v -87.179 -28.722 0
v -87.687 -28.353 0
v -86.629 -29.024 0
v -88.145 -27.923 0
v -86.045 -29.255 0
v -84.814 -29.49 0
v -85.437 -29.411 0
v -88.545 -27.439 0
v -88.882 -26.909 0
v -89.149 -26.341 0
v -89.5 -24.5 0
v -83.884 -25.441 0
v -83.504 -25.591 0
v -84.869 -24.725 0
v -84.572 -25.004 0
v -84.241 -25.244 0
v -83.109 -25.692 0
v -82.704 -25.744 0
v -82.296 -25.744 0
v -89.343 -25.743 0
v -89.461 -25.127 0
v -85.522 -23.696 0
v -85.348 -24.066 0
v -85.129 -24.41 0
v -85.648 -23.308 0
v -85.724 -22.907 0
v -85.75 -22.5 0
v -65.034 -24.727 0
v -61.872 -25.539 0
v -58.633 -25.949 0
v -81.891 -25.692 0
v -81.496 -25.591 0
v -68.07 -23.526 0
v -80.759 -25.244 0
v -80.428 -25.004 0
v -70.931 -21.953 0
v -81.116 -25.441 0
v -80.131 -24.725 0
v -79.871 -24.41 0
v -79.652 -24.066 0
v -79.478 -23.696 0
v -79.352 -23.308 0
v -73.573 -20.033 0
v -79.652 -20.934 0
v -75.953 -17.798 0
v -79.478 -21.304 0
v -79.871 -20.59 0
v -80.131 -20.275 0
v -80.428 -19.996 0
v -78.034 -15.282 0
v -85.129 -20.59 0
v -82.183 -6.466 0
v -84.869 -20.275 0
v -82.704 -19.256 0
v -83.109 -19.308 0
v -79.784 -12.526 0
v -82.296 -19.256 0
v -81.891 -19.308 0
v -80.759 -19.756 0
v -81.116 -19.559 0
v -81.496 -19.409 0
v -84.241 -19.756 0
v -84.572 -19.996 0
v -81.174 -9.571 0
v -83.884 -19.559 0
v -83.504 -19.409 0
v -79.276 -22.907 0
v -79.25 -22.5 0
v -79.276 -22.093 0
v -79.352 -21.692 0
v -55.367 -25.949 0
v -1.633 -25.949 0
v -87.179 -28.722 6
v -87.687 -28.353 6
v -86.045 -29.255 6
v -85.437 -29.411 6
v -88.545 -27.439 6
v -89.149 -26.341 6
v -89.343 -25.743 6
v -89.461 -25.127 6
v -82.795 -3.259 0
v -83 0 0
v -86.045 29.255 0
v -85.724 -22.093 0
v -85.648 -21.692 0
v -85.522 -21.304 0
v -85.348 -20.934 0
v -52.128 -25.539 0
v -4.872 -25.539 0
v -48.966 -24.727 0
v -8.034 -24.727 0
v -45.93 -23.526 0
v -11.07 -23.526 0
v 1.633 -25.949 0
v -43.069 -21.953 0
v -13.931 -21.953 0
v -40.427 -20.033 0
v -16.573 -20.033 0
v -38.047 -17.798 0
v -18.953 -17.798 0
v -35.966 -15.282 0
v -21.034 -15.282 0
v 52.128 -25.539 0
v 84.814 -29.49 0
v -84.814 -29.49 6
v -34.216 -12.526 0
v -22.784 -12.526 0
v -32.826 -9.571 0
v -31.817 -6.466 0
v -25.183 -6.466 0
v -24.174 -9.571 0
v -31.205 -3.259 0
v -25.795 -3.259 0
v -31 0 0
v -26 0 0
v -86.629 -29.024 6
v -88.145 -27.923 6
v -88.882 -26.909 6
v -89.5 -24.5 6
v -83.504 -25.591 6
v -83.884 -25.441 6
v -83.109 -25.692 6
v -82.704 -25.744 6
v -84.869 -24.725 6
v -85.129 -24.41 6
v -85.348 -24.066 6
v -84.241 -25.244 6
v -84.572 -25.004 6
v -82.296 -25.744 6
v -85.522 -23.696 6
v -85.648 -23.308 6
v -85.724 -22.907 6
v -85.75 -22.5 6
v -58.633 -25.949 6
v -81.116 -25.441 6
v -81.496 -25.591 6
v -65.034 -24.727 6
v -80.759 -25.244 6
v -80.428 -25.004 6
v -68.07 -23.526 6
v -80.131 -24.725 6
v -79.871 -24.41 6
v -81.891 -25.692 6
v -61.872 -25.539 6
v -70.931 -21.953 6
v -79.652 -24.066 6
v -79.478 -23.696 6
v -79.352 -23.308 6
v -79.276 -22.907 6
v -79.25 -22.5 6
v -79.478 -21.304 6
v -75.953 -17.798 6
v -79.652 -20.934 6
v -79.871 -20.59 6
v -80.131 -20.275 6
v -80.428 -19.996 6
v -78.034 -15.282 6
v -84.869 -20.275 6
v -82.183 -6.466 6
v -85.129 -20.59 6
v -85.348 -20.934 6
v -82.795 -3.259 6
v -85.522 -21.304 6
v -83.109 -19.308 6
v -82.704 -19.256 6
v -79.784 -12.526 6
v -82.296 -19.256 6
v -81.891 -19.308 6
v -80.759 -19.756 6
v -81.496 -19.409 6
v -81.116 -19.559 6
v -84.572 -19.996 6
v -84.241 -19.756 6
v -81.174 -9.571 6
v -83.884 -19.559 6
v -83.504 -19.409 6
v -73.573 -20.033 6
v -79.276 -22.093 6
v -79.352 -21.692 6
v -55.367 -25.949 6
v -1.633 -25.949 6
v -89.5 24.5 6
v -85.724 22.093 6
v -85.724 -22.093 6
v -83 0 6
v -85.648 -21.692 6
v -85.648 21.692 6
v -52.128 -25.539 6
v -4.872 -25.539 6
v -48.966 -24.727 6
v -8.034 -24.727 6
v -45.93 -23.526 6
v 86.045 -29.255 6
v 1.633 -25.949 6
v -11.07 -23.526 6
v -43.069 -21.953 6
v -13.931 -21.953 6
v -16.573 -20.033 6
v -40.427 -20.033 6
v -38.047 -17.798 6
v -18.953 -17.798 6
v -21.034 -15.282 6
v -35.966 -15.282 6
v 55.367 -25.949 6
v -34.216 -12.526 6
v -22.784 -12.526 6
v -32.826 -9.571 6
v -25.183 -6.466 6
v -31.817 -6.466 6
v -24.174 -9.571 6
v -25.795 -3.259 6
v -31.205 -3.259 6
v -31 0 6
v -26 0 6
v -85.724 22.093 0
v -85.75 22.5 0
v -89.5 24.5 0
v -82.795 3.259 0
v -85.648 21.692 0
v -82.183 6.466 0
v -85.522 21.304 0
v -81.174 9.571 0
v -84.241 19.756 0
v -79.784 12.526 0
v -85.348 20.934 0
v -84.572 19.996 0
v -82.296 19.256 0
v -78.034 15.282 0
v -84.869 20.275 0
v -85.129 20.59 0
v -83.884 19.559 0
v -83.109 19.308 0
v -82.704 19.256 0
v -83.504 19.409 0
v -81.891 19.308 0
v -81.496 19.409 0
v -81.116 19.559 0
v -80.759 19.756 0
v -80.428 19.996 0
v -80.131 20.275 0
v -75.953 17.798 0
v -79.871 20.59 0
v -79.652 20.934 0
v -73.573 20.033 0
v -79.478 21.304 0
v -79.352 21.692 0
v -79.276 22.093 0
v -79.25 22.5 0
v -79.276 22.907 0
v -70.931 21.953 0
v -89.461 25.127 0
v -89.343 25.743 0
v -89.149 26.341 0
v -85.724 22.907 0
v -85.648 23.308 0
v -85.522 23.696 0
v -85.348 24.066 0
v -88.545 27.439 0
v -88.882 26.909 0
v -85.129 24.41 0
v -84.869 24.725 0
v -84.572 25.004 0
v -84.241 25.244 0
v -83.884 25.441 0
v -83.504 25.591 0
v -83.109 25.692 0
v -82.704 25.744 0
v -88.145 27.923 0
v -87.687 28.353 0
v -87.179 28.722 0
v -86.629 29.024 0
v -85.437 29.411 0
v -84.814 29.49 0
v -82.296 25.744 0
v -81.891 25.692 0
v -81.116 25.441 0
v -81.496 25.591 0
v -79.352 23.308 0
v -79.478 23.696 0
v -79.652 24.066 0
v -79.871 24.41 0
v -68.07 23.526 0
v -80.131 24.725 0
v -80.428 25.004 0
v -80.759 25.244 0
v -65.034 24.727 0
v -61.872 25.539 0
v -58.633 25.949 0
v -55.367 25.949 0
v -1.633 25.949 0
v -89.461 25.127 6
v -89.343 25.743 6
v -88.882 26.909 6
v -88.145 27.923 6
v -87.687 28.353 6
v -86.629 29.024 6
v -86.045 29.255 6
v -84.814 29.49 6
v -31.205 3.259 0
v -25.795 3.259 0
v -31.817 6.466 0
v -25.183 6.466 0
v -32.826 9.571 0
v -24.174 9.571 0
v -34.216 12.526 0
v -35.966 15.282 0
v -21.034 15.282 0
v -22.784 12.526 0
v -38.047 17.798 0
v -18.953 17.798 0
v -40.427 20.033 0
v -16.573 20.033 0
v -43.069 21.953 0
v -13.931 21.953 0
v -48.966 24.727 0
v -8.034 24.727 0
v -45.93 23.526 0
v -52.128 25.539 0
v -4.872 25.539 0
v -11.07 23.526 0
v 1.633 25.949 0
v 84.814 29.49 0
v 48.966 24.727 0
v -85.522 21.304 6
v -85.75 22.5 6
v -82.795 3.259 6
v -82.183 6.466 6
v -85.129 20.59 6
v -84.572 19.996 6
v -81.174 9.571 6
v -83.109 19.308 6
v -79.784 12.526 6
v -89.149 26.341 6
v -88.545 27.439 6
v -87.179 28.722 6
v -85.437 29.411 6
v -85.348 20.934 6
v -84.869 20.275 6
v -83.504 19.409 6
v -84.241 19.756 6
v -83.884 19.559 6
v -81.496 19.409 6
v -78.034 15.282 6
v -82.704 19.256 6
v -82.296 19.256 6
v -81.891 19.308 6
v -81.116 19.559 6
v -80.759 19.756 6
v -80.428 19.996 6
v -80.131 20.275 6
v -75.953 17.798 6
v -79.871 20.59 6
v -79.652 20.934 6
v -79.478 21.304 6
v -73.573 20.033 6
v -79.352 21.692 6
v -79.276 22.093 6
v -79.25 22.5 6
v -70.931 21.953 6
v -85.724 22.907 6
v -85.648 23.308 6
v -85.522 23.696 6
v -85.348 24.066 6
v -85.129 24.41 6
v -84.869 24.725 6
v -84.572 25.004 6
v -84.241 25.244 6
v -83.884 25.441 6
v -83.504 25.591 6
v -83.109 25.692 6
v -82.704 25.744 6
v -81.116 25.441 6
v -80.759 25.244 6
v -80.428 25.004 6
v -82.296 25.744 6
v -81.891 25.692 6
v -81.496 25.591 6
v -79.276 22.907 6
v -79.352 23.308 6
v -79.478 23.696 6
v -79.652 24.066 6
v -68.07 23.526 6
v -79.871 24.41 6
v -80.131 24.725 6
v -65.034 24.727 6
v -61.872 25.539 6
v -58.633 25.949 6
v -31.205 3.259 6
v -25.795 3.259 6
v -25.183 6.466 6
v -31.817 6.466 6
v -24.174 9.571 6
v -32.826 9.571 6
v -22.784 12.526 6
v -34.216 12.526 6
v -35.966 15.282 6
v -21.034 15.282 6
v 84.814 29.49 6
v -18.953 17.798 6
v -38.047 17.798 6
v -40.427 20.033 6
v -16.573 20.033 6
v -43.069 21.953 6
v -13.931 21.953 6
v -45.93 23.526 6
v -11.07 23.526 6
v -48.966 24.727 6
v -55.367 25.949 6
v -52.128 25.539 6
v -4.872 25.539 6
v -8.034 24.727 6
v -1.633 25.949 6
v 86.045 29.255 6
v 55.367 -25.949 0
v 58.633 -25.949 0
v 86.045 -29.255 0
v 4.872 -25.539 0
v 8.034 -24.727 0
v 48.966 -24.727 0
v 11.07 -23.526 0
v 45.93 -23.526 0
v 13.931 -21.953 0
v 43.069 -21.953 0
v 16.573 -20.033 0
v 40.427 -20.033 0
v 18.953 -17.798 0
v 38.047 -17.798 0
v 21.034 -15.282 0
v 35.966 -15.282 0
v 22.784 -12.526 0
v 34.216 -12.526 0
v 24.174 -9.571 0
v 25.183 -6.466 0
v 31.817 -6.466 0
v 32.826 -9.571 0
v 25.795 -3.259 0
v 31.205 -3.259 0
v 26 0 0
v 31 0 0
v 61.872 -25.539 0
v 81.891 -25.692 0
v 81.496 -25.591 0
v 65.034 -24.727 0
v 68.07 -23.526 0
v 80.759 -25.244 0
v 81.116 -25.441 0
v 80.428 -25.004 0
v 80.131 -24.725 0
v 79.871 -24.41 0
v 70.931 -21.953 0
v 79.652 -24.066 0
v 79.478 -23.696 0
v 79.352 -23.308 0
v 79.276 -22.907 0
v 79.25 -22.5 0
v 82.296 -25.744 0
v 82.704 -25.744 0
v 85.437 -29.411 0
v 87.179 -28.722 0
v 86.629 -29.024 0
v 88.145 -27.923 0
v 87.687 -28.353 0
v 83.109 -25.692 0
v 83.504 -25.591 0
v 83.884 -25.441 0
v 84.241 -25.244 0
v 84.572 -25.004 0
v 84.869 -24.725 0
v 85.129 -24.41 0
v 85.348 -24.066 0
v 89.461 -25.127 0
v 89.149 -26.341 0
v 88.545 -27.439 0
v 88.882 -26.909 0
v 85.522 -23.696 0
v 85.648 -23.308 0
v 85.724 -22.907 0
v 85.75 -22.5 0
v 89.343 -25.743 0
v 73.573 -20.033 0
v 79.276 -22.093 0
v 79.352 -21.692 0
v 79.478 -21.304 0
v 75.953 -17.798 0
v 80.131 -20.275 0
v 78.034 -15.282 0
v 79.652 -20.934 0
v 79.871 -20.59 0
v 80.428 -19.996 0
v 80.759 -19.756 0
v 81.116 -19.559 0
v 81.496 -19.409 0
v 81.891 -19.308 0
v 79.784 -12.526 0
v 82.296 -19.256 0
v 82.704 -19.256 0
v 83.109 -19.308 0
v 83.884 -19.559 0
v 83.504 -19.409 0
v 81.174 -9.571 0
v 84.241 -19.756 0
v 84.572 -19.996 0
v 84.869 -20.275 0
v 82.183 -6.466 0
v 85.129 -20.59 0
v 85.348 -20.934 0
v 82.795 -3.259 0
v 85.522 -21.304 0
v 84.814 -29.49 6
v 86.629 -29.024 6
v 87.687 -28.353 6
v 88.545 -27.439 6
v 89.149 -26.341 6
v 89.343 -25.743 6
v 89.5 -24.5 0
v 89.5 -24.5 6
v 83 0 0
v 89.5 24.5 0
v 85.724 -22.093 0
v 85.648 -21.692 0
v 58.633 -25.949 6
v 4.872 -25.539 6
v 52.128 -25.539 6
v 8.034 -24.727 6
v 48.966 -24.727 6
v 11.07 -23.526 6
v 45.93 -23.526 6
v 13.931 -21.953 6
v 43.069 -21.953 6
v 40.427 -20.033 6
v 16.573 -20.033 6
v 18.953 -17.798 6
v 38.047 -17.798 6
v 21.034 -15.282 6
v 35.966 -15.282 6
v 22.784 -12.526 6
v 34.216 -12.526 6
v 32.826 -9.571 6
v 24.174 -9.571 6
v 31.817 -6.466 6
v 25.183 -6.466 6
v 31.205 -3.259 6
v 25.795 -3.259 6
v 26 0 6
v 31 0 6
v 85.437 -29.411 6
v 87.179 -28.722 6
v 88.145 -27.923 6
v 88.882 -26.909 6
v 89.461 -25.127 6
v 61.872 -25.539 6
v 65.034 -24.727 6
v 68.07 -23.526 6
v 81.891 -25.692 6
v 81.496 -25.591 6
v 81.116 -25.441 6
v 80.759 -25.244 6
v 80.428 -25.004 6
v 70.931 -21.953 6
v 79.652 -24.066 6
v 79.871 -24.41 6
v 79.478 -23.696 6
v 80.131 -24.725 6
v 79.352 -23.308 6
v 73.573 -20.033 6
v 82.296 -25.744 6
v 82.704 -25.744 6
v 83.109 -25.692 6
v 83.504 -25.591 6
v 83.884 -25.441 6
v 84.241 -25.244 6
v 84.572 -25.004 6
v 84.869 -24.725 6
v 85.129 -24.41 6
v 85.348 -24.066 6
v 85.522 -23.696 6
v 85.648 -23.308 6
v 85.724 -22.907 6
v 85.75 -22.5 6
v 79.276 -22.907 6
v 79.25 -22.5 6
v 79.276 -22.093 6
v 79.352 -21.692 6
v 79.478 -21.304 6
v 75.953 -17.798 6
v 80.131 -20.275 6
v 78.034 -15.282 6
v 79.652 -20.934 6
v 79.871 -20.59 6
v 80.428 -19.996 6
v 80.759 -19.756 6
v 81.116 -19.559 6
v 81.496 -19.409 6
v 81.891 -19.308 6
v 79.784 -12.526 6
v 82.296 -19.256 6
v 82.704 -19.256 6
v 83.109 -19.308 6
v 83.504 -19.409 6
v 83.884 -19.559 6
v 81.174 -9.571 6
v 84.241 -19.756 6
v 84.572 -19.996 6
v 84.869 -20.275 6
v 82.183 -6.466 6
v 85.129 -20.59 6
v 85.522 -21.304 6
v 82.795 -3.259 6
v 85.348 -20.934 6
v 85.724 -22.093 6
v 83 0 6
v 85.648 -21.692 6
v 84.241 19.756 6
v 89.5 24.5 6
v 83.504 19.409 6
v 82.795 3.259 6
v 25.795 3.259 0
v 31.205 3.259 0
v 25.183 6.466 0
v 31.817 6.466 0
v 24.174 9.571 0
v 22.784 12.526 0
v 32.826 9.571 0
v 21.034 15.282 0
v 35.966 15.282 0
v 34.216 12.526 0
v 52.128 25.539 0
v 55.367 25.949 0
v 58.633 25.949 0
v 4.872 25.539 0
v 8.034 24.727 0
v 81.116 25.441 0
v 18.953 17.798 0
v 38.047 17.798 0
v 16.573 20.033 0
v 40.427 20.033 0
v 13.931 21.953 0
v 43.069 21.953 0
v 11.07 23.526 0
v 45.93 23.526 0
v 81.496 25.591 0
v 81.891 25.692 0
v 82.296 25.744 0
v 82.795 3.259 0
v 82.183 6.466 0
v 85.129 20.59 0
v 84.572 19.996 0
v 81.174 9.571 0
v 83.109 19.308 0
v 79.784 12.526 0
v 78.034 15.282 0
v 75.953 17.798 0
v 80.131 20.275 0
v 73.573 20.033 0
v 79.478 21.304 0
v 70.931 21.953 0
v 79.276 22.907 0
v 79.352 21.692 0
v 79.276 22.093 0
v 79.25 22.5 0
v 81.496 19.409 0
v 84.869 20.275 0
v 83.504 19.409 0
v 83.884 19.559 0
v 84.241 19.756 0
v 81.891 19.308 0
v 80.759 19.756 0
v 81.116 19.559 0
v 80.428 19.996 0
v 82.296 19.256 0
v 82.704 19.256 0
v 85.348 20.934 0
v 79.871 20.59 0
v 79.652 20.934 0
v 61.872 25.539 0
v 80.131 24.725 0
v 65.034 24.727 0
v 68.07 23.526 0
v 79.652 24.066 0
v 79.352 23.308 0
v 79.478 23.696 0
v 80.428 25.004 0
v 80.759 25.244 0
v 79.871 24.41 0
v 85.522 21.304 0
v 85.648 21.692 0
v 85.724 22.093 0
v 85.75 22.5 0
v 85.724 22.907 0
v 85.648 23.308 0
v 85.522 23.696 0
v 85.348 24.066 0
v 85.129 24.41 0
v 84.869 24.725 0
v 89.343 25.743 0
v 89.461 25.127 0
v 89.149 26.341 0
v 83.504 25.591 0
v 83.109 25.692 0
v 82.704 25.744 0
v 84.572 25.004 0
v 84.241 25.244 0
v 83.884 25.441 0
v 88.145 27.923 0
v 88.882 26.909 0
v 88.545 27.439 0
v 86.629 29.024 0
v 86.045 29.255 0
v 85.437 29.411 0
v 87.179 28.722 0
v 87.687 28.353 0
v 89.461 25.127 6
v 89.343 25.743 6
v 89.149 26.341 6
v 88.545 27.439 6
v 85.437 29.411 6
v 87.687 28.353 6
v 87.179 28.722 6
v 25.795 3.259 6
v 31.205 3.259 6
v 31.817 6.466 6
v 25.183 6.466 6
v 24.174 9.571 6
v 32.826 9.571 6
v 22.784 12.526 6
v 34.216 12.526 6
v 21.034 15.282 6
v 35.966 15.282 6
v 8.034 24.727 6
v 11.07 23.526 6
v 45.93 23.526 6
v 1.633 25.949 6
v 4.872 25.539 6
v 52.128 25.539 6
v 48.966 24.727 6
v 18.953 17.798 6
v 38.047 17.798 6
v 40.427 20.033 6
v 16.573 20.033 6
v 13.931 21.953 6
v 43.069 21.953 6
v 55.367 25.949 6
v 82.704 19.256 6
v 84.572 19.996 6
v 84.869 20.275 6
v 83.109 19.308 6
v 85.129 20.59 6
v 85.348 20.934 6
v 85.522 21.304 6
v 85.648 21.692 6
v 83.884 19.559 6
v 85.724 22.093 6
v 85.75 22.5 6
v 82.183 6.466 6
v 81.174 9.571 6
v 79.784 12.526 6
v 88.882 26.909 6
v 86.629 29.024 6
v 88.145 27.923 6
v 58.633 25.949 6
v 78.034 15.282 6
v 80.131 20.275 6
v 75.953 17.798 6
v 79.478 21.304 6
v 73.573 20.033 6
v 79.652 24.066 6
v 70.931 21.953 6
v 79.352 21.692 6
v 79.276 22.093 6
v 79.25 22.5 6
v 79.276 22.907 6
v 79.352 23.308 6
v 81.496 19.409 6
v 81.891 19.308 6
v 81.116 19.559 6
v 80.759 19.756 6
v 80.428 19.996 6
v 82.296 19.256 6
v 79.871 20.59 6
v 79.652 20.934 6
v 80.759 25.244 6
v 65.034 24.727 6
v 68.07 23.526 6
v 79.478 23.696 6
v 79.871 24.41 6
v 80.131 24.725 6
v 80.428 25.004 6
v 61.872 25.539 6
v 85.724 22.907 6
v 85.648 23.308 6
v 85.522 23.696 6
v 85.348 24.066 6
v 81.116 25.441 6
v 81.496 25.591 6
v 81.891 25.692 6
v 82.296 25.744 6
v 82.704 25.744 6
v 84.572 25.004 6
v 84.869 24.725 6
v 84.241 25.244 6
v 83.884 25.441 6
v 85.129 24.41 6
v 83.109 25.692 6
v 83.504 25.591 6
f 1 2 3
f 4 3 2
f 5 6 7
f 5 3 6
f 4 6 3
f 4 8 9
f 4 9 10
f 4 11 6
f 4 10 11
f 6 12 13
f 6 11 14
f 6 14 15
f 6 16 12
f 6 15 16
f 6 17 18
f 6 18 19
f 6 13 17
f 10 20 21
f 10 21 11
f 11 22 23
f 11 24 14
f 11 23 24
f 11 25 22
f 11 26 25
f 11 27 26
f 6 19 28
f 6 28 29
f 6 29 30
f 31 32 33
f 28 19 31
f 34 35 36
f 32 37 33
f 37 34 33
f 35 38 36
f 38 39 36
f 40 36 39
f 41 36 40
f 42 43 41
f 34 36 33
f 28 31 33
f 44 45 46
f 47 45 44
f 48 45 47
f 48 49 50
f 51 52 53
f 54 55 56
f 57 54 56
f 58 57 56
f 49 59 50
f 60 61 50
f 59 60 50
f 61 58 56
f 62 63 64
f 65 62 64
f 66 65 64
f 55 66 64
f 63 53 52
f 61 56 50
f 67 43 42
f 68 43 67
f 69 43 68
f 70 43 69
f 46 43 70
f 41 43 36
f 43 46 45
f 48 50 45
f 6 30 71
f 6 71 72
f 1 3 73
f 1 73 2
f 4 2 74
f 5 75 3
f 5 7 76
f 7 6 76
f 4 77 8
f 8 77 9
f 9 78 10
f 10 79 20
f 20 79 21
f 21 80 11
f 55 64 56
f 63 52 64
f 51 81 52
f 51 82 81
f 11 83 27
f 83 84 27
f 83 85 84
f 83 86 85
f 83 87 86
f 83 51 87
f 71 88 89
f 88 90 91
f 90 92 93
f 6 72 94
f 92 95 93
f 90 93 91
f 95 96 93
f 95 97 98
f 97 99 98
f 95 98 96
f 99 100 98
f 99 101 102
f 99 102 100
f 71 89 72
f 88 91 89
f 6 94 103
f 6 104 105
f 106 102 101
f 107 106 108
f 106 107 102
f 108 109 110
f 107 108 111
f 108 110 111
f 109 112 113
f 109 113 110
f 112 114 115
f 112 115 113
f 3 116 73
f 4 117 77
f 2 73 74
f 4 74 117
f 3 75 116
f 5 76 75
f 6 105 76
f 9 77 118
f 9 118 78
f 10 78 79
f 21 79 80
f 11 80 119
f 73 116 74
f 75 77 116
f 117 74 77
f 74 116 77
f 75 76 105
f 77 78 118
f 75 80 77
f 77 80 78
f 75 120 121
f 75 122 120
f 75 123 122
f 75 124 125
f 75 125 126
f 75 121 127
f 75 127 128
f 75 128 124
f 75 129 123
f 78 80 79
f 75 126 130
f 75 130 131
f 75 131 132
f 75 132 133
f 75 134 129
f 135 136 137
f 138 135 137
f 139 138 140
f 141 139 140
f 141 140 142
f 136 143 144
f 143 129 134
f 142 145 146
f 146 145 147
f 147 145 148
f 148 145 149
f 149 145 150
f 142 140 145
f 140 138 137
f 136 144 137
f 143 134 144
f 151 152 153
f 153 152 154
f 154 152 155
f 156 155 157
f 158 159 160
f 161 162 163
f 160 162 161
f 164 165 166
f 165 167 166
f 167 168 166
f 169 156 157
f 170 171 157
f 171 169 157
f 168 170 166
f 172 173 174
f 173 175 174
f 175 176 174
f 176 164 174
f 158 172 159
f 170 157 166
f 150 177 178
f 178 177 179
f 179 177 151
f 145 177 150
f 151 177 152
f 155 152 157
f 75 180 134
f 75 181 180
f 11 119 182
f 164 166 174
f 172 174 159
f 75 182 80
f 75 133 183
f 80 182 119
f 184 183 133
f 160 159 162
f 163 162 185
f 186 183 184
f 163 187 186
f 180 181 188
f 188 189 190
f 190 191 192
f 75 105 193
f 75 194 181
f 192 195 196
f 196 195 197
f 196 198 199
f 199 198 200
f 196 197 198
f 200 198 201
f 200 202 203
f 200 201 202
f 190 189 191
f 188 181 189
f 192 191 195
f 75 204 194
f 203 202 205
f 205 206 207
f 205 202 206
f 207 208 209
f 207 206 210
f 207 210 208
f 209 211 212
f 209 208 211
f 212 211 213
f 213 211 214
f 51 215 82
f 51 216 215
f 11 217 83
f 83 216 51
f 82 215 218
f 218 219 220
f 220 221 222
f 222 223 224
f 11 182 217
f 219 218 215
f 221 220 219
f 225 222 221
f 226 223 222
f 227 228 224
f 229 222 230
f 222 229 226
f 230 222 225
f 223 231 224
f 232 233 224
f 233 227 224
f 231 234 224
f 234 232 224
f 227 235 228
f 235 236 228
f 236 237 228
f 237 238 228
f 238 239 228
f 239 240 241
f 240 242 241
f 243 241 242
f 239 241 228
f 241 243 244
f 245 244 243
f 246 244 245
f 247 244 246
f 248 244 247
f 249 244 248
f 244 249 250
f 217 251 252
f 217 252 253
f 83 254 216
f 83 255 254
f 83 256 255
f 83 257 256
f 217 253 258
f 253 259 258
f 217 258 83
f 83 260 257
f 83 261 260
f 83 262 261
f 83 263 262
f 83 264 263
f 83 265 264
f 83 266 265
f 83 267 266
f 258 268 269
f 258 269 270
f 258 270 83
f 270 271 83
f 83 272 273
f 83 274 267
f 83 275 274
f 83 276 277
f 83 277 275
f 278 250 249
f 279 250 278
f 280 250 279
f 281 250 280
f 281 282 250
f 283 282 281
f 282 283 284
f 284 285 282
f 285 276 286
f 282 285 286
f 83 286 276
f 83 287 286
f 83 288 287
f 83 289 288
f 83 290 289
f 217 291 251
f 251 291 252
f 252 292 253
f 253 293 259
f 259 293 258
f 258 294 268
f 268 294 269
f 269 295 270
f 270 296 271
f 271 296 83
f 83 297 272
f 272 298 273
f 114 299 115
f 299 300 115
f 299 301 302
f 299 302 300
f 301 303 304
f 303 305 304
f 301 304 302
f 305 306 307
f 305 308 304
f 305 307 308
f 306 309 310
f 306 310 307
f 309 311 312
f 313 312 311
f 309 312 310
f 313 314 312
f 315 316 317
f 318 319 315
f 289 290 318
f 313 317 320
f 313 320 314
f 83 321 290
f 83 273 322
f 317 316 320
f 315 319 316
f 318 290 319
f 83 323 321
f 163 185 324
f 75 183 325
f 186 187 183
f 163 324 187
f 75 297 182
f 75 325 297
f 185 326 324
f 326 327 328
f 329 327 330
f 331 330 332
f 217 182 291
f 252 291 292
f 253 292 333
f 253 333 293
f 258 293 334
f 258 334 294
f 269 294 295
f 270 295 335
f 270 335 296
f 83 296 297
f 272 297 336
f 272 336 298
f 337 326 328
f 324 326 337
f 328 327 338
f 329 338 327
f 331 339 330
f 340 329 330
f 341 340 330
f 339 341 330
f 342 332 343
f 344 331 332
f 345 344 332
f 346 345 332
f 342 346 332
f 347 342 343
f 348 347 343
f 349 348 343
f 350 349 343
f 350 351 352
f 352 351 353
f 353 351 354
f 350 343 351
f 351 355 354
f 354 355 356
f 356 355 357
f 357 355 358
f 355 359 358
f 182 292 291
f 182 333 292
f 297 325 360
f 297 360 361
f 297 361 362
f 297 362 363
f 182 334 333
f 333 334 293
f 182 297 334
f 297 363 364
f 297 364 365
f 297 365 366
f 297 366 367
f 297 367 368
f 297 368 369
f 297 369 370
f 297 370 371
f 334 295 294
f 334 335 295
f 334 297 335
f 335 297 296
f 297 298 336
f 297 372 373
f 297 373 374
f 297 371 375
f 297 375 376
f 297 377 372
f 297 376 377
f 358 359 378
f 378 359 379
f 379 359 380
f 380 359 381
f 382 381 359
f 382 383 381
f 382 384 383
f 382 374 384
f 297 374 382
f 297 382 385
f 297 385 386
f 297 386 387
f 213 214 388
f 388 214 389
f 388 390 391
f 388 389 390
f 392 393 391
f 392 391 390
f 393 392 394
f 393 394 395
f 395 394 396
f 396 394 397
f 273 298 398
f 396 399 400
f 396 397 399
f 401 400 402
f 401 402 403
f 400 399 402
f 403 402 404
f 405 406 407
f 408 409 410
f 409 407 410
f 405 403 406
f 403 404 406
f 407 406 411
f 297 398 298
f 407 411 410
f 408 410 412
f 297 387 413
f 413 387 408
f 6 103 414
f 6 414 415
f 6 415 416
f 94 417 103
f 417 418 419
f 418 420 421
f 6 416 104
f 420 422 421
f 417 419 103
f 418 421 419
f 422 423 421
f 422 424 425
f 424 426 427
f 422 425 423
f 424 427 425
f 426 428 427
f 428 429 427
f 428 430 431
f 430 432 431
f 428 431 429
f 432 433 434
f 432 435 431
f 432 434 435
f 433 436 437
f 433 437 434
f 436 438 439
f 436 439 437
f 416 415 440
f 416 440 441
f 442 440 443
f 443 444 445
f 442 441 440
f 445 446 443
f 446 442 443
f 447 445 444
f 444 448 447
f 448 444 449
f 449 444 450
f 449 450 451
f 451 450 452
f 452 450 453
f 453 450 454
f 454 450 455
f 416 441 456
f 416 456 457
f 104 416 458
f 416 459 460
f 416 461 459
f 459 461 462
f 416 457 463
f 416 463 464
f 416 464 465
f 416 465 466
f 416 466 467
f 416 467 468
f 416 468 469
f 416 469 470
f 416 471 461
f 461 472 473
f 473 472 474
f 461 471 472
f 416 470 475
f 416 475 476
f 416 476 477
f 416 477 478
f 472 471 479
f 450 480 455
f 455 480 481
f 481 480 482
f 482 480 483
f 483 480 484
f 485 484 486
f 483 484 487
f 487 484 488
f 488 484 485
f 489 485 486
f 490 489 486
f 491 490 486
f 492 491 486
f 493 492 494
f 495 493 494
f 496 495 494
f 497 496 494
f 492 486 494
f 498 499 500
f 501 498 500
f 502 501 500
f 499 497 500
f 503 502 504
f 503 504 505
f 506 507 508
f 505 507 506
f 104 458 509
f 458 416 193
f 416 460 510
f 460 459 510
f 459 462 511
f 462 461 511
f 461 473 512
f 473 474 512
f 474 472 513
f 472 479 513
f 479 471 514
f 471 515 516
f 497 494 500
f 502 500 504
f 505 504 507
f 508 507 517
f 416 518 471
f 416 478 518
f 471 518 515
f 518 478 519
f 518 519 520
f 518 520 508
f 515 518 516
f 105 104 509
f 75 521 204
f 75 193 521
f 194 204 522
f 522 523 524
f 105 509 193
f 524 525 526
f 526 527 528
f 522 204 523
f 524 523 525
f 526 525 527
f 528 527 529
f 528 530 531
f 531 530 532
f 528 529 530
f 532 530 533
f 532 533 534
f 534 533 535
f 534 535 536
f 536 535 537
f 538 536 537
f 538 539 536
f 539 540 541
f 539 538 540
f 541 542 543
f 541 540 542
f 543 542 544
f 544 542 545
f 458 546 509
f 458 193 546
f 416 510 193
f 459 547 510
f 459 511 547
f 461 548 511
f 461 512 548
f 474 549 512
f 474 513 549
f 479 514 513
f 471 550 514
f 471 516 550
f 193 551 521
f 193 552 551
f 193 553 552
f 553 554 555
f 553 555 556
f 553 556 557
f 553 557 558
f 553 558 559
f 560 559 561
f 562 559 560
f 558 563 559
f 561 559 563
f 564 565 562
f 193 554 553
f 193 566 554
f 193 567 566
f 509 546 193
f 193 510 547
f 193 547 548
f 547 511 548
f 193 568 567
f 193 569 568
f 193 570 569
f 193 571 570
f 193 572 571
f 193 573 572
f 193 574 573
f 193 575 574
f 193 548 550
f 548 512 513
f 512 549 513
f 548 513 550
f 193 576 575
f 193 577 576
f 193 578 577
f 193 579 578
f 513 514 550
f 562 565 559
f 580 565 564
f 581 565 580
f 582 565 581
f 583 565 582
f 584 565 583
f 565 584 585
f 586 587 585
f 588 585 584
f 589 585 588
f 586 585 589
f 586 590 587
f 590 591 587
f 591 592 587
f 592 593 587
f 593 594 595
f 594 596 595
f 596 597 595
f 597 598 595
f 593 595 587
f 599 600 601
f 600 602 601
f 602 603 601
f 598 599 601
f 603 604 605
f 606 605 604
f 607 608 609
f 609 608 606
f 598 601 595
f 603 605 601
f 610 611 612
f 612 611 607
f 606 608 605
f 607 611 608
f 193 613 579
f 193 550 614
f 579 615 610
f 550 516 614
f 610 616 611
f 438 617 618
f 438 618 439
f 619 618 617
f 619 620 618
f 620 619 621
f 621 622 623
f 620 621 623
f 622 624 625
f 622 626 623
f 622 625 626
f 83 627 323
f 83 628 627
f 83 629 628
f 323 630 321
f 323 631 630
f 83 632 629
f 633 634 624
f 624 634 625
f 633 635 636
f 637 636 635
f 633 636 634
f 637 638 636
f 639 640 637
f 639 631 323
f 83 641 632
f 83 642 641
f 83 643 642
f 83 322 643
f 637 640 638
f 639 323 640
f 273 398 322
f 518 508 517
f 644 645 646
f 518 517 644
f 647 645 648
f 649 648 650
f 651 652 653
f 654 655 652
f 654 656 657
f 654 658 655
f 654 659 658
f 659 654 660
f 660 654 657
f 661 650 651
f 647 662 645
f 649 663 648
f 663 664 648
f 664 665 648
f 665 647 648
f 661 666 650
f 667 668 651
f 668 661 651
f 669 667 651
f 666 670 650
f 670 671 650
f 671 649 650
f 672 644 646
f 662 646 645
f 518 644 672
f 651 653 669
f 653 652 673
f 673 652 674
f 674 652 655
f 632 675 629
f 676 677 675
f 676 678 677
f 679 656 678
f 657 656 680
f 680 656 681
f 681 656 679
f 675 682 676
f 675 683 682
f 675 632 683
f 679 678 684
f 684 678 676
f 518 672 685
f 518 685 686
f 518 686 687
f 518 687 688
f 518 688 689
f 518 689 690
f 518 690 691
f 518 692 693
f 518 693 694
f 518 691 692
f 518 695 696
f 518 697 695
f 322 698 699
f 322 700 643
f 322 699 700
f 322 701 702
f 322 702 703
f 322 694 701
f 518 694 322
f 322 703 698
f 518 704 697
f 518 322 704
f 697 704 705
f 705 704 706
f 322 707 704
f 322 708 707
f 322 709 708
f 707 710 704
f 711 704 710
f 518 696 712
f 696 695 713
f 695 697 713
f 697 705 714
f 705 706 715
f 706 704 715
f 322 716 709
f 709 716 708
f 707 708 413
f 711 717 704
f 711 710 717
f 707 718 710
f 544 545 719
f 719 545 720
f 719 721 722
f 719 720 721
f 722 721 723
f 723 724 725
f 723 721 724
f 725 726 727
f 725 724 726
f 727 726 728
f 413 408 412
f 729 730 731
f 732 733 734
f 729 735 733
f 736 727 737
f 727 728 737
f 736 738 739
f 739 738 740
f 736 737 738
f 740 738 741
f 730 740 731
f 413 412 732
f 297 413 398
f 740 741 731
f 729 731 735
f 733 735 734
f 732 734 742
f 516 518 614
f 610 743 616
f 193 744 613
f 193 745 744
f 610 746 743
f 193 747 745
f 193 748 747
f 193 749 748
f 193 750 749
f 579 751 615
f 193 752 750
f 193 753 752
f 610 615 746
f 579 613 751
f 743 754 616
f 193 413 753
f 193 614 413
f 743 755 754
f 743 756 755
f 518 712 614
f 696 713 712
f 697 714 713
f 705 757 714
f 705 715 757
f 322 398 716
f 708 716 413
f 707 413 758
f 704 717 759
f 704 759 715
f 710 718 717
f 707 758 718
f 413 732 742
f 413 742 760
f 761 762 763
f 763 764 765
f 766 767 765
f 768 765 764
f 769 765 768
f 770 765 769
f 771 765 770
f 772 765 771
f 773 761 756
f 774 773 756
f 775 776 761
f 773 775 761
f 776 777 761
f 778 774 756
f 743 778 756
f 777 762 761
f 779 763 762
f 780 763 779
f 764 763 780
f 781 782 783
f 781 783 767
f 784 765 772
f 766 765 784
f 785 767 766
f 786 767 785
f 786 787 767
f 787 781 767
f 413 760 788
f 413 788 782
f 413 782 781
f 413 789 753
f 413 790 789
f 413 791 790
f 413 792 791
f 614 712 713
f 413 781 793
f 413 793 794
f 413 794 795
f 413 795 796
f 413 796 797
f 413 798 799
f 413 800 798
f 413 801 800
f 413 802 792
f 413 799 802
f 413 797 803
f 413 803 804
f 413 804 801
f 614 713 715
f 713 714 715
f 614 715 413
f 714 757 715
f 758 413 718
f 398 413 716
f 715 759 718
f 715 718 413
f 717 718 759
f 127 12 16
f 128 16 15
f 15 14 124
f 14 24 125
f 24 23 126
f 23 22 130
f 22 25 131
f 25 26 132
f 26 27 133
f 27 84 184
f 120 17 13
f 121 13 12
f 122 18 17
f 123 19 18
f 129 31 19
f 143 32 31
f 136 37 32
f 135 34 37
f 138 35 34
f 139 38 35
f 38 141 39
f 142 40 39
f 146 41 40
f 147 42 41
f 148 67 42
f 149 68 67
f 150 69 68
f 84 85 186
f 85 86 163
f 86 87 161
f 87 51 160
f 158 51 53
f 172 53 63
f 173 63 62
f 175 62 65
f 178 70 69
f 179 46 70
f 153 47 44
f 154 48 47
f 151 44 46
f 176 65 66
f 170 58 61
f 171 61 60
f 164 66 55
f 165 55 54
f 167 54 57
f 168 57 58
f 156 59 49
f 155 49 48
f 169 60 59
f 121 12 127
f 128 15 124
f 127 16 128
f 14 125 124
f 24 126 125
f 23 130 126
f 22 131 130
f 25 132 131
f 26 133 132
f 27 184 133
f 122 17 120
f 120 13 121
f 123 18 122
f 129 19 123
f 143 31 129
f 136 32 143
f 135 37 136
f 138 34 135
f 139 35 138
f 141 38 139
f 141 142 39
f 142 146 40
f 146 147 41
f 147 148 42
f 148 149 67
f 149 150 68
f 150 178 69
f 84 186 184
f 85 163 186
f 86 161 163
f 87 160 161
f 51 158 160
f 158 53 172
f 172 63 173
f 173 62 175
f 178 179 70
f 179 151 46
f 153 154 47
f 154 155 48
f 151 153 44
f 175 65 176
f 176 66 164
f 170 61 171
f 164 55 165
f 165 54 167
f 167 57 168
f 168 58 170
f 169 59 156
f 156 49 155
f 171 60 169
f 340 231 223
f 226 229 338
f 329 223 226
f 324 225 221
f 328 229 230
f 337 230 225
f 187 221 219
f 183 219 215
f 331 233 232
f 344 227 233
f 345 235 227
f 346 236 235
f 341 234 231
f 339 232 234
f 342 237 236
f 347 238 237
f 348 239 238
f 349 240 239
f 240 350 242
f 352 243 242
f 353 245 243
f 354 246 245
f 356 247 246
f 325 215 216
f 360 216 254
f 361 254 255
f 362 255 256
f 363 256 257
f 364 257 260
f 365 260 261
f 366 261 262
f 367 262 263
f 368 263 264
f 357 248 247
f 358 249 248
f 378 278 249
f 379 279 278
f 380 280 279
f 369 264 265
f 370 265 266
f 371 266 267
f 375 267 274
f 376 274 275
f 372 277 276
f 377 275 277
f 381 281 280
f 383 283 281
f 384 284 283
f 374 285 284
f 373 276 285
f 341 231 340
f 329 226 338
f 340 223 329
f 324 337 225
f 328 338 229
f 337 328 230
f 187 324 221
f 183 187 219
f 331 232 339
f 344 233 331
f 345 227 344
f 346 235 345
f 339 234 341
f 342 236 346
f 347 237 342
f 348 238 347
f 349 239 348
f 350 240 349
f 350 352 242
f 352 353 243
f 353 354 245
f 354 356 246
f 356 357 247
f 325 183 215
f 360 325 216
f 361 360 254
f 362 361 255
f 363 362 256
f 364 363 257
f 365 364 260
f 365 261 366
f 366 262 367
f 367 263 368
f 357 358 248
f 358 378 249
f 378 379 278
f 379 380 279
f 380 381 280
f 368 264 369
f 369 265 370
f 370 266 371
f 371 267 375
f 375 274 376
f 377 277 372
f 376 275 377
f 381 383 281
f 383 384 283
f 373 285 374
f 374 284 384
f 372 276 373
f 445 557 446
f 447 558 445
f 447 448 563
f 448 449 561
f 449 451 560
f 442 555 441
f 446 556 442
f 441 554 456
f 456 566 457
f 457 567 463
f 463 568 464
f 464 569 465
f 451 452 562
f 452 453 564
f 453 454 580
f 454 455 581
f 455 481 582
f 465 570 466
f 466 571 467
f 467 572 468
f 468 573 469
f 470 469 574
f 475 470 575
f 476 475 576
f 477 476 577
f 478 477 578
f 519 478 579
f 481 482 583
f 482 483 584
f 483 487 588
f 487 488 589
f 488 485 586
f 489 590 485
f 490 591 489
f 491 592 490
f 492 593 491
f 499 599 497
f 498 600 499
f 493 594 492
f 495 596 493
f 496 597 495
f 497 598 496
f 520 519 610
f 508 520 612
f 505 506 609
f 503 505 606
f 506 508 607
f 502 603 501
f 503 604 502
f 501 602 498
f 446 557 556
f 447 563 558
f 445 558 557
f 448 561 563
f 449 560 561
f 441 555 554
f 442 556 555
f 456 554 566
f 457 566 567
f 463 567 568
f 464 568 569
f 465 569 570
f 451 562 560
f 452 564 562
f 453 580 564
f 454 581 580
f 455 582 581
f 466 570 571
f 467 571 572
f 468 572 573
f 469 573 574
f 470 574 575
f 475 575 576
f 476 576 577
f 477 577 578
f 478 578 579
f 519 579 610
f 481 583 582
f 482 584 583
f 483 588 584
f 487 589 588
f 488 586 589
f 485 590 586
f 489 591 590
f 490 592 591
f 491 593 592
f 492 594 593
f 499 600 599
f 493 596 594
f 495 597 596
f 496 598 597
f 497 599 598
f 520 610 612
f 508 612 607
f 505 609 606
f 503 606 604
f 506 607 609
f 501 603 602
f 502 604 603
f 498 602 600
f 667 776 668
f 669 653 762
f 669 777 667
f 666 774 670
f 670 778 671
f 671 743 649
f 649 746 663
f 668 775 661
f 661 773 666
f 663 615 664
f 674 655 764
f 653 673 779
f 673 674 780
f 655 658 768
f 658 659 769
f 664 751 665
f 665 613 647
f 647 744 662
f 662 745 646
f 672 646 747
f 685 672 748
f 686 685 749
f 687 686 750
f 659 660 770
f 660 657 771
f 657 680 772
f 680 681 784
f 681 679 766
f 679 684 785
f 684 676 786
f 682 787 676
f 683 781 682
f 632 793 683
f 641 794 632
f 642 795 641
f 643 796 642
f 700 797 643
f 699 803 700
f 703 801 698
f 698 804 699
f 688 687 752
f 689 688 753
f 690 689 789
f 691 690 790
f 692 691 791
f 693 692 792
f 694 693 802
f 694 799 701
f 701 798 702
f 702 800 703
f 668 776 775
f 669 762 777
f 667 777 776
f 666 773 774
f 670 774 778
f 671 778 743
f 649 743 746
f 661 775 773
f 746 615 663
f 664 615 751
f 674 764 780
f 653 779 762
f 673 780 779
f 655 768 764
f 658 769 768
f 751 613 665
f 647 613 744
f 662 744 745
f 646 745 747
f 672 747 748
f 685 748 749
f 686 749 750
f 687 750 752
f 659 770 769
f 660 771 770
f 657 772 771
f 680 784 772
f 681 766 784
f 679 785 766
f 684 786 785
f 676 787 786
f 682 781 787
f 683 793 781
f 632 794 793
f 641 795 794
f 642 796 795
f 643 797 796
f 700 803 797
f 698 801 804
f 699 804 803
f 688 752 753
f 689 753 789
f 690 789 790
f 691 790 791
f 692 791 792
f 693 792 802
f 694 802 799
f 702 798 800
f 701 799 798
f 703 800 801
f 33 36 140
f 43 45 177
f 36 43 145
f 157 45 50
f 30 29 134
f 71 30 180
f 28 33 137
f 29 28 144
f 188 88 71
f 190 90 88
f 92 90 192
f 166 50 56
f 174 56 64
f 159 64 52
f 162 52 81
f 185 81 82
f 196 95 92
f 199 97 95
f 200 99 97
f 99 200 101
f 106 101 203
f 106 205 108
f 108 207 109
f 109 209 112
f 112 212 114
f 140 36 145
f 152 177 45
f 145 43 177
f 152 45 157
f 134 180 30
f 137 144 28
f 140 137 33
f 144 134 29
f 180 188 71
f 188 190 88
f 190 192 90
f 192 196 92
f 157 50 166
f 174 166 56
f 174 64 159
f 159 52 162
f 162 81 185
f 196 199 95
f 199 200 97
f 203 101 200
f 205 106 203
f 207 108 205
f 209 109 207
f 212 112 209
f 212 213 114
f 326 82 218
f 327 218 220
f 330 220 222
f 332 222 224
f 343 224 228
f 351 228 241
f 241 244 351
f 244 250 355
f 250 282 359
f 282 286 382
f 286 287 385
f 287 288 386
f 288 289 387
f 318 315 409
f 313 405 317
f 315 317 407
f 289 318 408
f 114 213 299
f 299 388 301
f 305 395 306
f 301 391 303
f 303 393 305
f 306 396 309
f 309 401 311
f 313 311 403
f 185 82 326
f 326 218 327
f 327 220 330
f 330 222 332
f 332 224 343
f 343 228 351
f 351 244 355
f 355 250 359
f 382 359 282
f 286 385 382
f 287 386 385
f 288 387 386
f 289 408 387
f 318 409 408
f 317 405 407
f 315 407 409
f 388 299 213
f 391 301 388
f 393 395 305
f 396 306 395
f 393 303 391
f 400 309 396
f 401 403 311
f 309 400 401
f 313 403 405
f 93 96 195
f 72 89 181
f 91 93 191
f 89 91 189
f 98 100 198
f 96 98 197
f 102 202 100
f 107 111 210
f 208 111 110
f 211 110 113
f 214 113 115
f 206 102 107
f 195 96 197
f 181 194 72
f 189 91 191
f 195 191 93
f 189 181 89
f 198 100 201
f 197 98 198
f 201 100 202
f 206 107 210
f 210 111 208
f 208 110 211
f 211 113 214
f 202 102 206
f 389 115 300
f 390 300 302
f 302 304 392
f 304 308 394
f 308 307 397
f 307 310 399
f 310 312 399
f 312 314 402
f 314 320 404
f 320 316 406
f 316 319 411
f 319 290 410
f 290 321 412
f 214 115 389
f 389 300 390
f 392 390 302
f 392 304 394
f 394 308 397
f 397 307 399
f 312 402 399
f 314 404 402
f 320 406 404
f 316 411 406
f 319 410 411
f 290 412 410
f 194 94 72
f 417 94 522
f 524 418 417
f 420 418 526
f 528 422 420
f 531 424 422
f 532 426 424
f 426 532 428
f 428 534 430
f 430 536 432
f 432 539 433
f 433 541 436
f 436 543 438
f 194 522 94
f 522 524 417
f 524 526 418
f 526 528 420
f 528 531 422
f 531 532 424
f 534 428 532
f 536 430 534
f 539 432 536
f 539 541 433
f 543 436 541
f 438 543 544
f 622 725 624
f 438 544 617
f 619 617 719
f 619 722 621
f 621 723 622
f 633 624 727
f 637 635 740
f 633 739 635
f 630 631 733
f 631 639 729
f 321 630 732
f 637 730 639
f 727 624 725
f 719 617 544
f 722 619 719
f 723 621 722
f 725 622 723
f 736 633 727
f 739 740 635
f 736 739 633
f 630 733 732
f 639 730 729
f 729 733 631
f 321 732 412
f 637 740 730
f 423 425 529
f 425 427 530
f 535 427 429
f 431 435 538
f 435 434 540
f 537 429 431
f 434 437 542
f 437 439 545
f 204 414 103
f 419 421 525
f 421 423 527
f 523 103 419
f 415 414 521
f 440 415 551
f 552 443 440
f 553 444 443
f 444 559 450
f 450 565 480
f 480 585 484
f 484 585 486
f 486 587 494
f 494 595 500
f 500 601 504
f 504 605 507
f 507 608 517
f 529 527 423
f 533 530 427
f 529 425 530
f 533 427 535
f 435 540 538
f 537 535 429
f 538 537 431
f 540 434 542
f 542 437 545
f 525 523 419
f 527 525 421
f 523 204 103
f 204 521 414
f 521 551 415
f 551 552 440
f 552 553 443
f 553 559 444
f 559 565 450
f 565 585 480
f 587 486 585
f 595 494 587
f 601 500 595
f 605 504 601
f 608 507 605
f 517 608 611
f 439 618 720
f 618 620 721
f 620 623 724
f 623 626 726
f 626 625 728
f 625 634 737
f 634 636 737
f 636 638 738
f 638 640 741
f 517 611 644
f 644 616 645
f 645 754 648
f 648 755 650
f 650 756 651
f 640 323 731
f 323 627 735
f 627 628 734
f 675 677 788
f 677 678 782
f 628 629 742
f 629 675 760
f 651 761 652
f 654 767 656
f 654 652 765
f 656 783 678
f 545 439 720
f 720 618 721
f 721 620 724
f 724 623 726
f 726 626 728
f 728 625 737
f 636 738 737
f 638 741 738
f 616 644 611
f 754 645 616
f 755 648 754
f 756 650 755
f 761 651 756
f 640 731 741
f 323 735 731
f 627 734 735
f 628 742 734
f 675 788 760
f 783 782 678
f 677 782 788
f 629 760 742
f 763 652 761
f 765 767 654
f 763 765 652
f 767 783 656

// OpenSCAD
$fn = 50;

difference() {
	union() {
		hull() {
			translate(v = [-84.5, 24.5, 0]) {
				cylinder(h = 6, r = 5);
			}
			translate(v = [84.5, 24.5, 0]) {
				cylinder(h = 6, r = 5);
			}
			translate(v = [-84.5, -24.5, 0]) {
				cylinder(h = 6, r = 5);
			}
			translate(v = [84.5, -24.5, 0]) {
				cylinder(h = 6, r = 5);
			}
		}
	}
	union() {
		translate(v = [-82.5, -22.5, -100.0]) {
			cylinder(h = 200, r = 3.25);
		}
		translate(v = [-82.5, 22.5, -100.0]) {
			cylinder(h = 200, r = 3.25);
		}
		translate(v = [82.5, -22.5, -100.0]) {
			cylinder(h = 200, r = 3.25);
		}
		translate(v = [82.5, 22.5, -100.0]) {
			cylinder(h = 200, r = 3.25);
		}
		translate(v = [-82.5, -22.5, -100.0]) {
			cylinder(h = 200, r = 1.8);
		}
		translate(v = [-82.5, 22.5, -100.0]) {
			cylinder(h = 200, r = 1.8);
		}
		translate(v = [82.5, -22.5, -100.0]) {
			cylinder(h = 200, r = 1.8);
		}
		translate(v = [82.5, 22.5, -100.0]) {
			cylinder(h = 200, r = 1.8);
		}
		translate(v = [-57.0, 0, 0.0]) {
			cylinder(h = 6, r = 26.0);
		}
		cylinder(h = 6, r = 26.0);
		translate(v = [57.0, 0, 0.0]) {
			cylinder(h = 6, r = 26.0);
		}
	}
}
